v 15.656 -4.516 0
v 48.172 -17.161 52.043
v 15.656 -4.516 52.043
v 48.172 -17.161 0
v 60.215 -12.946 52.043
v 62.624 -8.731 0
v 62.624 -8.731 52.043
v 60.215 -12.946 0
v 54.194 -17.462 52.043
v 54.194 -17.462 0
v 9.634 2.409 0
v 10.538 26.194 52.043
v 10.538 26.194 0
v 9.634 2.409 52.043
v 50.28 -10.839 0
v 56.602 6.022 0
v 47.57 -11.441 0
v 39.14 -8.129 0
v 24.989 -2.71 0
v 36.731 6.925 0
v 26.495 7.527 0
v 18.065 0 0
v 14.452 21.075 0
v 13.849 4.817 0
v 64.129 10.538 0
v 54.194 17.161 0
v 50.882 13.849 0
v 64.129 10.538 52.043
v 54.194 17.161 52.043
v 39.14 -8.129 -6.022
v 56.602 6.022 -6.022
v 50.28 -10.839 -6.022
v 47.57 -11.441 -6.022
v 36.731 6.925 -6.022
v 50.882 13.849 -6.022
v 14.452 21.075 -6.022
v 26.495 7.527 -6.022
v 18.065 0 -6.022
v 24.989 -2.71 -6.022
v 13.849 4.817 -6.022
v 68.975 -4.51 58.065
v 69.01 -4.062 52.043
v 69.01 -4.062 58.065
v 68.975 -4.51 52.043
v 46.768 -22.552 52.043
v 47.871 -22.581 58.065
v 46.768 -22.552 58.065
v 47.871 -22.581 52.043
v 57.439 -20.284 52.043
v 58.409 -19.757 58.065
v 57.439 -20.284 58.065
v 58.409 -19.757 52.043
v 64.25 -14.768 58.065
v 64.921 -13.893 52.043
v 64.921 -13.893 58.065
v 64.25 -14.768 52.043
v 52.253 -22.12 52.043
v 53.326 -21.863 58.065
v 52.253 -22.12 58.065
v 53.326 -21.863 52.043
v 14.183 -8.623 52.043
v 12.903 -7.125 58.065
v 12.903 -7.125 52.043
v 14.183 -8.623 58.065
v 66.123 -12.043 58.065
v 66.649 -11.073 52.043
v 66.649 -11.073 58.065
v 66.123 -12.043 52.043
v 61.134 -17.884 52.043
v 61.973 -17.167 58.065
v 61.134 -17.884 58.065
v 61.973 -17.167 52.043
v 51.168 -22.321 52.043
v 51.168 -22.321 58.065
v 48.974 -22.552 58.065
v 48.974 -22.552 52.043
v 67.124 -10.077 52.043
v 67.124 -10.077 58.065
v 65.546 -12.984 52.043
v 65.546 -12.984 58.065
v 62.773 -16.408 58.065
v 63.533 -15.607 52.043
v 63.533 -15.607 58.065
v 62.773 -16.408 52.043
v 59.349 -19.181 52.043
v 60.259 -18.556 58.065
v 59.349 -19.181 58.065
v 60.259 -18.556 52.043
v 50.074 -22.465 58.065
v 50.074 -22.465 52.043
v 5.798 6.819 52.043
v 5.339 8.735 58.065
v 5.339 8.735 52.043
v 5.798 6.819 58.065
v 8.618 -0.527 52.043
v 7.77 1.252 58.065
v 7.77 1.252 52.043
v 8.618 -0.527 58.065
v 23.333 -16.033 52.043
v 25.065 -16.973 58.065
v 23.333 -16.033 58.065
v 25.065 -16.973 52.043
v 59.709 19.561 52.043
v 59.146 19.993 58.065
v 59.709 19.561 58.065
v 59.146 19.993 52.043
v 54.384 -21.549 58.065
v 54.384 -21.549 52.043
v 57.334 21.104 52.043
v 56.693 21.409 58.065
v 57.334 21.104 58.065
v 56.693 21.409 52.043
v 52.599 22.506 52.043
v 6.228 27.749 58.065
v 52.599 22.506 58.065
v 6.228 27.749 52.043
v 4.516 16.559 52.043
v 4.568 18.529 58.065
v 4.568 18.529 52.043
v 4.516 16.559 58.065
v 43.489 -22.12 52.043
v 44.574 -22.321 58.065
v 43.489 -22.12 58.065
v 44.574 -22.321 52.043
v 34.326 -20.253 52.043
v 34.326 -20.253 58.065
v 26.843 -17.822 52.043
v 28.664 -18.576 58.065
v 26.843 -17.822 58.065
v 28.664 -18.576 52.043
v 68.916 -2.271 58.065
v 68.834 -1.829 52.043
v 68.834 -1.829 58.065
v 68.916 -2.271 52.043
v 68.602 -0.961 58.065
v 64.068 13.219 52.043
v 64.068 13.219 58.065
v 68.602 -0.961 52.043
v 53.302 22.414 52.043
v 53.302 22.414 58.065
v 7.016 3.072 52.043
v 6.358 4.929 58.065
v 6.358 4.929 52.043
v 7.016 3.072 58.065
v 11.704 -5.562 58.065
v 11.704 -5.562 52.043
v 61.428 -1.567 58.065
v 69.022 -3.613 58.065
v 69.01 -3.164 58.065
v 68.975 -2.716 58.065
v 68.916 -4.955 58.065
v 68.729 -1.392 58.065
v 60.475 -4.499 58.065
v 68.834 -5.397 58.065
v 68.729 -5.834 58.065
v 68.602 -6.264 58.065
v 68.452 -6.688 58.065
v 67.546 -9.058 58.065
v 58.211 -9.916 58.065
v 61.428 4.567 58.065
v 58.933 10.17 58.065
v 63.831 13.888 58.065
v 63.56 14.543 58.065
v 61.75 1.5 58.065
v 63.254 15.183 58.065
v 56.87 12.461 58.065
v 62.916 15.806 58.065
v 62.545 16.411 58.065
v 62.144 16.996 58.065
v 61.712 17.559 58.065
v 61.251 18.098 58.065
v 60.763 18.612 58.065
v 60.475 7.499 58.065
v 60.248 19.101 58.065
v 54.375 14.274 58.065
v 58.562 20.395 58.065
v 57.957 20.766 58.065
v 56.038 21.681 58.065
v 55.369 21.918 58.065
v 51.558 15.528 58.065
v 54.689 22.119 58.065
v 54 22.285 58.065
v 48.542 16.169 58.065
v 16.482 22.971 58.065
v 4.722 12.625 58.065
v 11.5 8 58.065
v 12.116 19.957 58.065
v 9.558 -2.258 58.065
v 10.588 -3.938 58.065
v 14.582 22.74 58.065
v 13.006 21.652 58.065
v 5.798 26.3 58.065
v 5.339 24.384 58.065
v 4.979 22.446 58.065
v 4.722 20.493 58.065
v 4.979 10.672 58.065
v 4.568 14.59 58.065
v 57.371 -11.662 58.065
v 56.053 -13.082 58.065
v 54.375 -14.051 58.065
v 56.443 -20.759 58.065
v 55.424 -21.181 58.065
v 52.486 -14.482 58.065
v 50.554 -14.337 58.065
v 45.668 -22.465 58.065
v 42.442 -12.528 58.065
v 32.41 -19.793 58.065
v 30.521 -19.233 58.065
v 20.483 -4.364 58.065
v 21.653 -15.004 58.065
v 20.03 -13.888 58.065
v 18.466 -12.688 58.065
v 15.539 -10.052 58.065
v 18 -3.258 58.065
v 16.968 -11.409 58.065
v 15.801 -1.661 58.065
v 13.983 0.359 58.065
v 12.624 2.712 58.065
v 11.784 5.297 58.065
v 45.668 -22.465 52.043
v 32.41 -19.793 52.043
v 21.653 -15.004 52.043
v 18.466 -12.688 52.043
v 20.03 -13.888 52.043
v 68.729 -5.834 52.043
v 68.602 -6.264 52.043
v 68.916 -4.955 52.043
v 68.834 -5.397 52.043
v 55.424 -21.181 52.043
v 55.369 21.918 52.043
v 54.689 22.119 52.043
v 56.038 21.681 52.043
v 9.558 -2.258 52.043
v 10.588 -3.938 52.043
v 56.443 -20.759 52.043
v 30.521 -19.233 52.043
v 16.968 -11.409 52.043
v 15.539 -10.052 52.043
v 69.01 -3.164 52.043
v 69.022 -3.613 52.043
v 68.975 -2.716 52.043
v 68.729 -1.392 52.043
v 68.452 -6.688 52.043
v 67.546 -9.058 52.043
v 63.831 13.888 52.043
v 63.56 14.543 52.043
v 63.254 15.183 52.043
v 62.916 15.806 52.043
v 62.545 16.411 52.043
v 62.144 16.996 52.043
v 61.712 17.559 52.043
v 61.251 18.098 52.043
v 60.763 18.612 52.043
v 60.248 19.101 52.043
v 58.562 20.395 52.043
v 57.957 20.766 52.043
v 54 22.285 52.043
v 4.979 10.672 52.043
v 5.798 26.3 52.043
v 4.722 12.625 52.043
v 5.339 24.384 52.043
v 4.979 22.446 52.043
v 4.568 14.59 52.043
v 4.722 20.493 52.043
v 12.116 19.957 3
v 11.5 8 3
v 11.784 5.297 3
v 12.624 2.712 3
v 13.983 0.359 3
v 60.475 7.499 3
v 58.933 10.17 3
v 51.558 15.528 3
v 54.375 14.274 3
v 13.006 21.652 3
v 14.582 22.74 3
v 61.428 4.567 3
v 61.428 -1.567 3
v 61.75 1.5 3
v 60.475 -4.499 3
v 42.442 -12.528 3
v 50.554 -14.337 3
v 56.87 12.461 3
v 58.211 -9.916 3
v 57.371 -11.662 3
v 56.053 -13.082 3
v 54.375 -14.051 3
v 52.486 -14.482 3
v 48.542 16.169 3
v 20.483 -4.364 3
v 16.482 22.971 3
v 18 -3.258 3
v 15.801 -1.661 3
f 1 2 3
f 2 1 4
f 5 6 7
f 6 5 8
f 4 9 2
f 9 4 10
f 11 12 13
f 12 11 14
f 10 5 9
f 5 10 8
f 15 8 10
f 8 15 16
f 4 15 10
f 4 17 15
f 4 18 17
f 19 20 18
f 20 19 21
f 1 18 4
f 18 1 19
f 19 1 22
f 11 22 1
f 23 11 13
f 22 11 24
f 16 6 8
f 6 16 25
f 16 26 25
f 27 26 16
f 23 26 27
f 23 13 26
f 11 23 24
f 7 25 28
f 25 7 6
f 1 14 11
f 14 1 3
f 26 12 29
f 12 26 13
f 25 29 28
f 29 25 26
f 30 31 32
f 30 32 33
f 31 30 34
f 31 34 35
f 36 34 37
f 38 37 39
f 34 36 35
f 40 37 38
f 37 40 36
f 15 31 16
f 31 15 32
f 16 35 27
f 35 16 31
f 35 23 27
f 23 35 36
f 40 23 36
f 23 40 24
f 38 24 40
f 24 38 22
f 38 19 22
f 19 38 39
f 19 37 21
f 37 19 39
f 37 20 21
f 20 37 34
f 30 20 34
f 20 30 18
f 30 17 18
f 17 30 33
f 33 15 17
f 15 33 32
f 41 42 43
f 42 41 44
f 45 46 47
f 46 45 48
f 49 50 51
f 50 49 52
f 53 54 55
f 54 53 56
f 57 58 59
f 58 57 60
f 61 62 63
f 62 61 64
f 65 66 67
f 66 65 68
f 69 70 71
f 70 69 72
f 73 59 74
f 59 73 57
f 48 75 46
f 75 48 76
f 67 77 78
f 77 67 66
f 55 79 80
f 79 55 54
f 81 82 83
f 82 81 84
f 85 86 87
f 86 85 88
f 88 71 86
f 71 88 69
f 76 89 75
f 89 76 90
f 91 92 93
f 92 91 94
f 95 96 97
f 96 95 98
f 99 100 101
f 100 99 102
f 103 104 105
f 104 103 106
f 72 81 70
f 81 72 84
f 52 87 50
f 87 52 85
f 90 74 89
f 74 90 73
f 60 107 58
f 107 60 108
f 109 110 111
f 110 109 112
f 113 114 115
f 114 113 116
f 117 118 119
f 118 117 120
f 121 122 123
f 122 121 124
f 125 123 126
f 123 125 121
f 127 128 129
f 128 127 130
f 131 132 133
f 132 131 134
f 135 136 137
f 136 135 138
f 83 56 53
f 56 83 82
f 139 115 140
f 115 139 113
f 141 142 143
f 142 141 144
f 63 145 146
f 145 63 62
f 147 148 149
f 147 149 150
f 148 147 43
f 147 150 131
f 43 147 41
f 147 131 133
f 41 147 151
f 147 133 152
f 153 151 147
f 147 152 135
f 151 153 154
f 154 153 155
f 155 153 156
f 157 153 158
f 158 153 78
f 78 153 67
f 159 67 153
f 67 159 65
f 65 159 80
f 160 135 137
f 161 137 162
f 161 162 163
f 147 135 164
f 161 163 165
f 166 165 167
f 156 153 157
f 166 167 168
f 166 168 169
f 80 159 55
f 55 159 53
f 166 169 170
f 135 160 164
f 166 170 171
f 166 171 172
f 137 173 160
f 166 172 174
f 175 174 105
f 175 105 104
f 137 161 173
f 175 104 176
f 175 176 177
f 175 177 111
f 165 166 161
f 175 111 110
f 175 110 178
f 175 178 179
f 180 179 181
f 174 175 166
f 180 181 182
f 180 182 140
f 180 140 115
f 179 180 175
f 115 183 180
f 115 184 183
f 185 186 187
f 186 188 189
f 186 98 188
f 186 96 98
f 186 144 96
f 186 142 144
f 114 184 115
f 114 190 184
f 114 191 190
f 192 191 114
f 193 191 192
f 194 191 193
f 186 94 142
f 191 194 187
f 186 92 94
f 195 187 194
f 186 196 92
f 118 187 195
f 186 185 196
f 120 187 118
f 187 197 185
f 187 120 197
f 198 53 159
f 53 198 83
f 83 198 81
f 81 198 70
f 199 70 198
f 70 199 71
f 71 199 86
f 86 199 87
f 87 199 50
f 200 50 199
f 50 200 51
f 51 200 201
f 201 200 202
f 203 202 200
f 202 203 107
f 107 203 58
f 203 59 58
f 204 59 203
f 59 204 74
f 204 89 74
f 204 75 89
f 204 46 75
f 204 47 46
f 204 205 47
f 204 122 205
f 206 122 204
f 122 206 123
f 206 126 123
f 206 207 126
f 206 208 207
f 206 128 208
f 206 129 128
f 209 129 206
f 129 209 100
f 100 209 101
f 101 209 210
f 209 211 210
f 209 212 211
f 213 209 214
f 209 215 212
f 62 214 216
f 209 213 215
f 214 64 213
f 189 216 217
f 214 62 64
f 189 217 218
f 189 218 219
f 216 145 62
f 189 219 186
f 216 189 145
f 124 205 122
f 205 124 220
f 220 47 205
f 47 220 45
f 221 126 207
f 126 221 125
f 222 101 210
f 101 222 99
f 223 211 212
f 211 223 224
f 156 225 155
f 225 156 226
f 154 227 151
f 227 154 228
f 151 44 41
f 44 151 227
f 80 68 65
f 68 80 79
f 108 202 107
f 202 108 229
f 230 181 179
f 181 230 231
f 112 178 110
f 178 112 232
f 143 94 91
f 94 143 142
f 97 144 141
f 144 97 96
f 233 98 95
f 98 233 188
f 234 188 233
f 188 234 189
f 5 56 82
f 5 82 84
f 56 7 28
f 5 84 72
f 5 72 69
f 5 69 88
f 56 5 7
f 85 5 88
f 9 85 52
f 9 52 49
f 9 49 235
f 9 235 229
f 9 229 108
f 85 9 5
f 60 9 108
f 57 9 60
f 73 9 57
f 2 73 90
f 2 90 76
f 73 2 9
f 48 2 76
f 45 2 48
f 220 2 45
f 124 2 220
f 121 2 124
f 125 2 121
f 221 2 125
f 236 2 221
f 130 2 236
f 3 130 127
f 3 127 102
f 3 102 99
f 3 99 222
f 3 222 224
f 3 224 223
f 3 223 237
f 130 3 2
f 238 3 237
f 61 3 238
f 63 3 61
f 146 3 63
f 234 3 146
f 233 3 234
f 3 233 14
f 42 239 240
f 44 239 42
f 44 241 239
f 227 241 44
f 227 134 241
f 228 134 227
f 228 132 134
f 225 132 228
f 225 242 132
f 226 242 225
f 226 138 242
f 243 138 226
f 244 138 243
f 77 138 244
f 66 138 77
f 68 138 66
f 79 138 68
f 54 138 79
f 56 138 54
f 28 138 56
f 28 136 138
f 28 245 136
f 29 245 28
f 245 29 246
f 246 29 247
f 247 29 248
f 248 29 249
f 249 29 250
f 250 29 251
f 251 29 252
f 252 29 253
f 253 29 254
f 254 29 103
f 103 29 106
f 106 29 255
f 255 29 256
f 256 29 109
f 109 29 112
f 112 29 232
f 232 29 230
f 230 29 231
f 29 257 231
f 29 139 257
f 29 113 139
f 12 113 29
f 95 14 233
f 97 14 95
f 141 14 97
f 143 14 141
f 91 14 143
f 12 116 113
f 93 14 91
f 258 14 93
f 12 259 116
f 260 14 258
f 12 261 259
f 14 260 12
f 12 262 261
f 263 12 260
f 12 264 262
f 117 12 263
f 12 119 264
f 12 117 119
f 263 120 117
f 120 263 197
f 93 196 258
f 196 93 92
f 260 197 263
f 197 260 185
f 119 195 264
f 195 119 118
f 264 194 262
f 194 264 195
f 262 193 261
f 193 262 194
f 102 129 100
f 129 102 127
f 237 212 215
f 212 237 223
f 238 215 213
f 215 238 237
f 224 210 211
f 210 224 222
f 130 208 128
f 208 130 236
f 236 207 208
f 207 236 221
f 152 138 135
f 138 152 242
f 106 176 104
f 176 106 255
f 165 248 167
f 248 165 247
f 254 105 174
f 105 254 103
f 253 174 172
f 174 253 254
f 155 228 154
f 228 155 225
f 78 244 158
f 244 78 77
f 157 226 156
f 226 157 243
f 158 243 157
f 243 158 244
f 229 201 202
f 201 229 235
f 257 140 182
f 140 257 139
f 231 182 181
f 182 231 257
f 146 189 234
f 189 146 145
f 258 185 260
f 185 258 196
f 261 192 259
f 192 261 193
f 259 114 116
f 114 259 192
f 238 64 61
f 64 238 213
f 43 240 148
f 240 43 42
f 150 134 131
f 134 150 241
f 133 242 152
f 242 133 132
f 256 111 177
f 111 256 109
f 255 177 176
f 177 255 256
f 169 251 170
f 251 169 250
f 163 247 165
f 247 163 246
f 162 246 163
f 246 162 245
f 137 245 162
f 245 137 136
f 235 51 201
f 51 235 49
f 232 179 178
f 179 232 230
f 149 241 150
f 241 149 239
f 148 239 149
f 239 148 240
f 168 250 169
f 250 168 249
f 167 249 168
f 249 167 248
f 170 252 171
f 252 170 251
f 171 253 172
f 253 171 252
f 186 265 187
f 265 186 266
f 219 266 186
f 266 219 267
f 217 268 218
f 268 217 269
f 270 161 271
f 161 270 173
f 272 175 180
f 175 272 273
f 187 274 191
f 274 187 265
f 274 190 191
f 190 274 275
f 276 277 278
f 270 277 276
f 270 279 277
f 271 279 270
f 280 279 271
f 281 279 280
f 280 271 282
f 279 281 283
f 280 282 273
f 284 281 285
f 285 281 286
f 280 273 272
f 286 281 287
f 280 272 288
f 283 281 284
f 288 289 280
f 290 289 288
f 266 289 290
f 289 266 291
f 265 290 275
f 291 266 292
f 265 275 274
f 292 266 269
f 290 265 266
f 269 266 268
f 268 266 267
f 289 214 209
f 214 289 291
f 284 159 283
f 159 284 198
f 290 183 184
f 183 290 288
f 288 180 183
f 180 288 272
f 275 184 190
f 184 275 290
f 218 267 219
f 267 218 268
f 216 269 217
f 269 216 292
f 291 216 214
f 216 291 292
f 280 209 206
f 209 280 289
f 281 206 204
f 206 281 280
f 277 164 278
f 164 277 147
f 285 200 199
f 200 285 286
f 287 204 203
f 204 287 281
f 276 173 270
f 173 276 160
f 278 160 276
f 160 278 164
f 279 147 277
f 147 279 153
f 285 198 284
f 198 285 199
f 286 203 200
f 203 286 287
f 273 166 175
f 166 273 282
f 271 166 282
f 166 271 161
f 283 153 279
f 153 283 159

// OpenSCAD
difference(){
union(){
translate([0,0,40])front();
back();
}
translate([0,0,3])
hull(){ //vaciado
translate([24.5,8,0])cylinder(d=26,h=200);
translate([47,1.5,0])cylinder(d=29.5,h=200);
translate([52,-8,0])cylinder(d=13,h=200);
translate([16,19,0])cylinder(d=8,h=200);
}
}

module front(){
scale(140/465)
{
$fn=120;
translate([0,0,40])
hull(){
difference(){
translate([159,-5,0])cylinder(d=140,h=20);
translate([0,-15,0])cube([500,500,500]);
}
translate([170,30,0])cylinder(d=90,h=20);
translate([200.75,-12,0])cylinder(d=57,h=20);

difference(){
translate([140,55,0])cylinder(d=250,h=20);
translate([140,-140,0])cube([500,500,500]);
rotate([0,0,-7])
translate([0,94,0])cube([500,500,500]);
}   
}
}
}

module back(){
scale(140/465){
linear_extrude(height=190){
polygon([[35,87],[180,57],[213,35],[208,-29],[200,---43],[180,-58],[160,-57],[52,-15],[32,8]]);
}

translate([0,0,-20])
linear_extrude(height=20,convexity=3){
polygon([[48,70],[169,46],[188,20],[167,-36],[158,---38],[130,-27],[122,23],[88,25],[83,-9],[60,0],[46,16]]);
}
}
}
